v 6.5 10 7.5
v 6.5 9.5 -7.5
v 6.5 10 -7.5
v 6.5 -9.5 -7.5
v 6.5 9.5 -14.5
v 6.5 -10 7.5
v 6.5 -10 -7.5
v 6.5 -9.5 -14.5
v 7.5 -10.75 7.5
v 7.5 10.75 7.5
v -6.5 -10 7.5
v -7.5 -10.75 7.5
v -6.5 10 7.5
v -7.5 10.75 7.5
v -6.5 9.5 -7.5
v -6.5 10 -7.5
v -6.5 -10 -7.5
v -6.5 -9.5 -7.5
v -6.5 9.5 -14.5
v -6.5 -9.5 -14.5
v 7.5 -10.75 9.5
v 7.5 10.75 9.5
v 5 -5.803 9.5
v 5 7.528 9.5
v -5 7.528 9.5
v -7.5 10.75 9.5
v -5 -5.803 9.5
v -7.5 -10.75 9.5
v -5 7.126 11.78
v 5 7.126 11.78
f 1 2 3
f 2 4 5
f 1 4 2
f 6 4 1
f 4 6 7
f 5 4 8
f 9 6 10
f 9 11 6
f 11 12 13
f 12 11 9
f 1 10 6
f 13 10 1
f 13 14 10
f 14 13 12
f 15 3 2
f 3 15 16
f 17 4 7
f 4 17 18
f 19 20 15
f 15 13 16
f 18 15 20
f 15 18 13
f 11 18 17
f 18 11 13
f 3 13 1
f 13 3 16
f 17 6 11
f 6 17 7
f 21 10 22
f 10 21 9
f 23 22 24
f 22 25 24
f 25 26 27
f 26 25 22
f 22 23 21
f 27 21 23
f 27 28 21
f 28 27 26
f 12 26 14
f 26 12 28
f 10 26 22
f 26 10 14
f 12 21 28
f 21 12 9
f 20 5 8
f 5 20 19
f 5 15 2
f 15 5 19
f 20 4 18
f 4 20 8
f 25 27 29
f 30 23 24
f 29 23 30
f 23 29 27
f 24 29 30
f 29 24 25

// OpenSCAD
// NAME: 12V Power Switch
// CATEGORY: Electric
// COLOR: 0

module switch(){
    color([0.2, 0.2, 0.2])
        cube([13, 20, 15], center=true);
    translate([0, 0, 8.5])
        color([0.2, 0.2, 0.2])
        cube([15, 21.5, 2], center=true);
    translate([0, 0, -11])
        color([0.2, 0.2, 0.2, 0.5])
        cube([13, 19, 7], center=true);
    translate([0, 0, 9])
        rotate([10, 0, 0])
        color([0, 0, 0.8])
        cube([10, 15, 3], center=true);
}

switch();
